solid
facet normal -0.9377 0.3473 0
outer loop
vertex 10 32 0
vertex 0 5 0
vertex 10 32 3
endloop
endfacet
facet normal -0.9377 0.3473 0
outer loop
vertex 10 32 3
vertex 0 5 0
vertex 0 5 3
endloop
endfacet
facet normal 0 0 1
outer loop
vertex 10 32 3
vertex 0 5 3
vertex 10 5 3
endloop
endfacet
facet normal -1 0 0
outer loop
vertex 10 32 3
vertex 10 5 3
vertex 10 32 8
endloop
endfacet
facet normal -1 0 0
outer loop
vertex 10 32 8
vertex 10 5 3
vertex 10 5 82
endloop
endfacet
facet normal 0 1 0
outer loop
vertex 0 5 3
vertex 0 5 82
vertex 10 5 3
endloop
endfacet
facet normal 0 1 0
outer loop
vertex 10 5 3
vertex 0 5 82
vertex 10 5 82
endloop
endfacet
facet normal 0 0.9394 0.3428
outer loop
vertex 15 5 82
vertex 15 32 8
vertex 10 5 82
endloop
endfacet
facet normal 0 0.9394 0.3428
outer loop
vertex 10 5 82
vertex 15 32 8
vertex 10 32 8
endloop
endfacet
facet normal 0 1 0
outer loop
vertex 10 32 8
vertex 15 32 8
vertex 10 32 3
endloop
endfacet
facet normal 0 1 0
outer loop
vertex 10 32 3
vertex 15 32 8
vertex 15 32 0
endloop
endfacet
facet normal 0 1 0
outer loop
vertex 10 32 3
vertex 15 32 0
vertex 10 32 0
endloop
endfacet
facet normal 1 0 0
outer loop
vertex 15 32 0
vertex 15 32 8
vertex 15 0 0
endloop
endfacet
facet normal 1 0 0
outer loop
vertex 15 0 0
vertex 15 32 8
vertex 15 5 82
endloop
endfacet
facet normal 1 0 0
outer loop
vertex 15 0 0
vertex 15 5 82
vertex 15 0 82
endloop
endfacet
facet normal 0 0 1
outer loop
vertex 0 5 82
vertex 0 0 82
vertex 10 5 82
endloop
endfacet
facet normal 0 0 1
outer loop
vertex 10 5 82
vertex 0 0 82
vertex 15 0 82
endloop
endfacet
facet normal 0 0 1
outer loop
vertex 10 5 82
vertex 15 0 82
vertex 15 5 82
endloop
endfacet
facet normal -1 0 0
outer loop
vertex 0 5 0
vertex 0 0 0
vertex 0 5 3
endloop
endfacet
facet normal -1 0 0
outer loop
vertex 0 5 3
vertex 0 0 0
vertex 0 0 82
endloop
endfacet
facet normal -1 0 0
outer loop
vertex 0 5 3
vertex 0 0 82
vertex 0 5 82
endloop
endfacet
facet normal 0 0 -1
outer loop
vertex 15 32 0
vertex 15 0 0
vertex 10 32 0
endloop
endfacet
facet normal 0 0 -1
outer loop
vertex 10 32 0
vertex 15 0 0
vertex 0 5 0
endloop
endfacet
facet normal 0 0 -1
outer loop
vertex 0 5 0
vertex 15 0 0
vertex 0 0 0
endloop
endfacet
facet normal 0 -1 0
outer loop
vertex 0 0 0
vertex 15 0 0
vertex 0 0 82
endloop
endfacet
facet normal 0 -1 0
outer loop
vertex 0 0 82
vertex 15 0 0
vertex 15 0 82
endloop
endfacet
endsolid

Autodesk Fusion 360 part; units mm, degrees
sketch "Sketch1" plane through (0, 0, 0) normal (0, 1, 0) x (1, 0, 0)
  line L0 (0, 0) -> (15, 0)
  line L1 (15, 0) -> (15, -80)
  line L2 (15, -80) -> (0, -80)
  line L3 (0, -80) -> (0, 0)
  dimension "d4" = 15
  dimension "d5" = 80
extrude "Extrude1" add sketch "Sketch1" along normal blind 5
sketch "Sketch3" plane through (0, 5, 0) normal (0, 1, 0) x (-1, 0, 0)
  line L0 (0, 80) -> (-15, 80)
  line L1 (-15, 80) -> (-15, 0)
  line L2 (-15, 0) -> (0, 0)
  line L3 (0, 0) -> (0, 80)
  line L4 (-15, 0) -> (-10, 0)
  line L5 (-10, 0) -> (-10, 8)
  line L6 (-10, 8) -> (-15, 8)
  line L7 (-15, 8) -> (-15, 0)
  dimension "d10" = 5
  dimension "d11" = 8
extrude "Extrude2" add sketch "Sketch3" along normal blind 35 contours L1 L2 L4 L5 L6 L7
sketch "Sketch4" plane through (15, 0, 0) normal (1, 0, 0) x (0, 1, 0)
  line L0 (0, 80) -> (0, 0)
  line L1 (0, 0) -> (40, 0)
  line L2 (40, 0) -> (40, 8)
  line L3 (40, 8) -> (5, 8)
  line L4 (5, 8) -> (5, 80)
  line L5 (5, 80) -> (0, 80)
  line L6 (5, 80) -> (40, 8)
  line L7 (40, 8) -> (5, 8)
  line L8 (5, 8) -> (5, 80)
extrude "Extrude4" add 1 faces at (10, 1.6667, 80) along direction (0, 0, 1) blind 2
extrude "Extrude6" cut 1 faces at (13.3333, 40, 5.3333) along direction (0, -1, 0) blind 8
sketch "Sketch6" plane through (15, 0, 0) normal (1, 0, 0) x (0, 1, 0)
  line L0 (32, 0) -> (32, 8)
  line L1 (32, 8) -> (5, 8)
  line L2 (5, 8) -> (5, 82)
  line L3 (5, 82) -> (0, 82)
  line L4 (0, 82) -> (0, 0)
  line L5 (0, 0) -> (32, 0)
  line L6 (5, 82) -> (5, 8)
  line L7 (5, 8) -> (32, 8)
  line L8 (32, 8) -> (5, 82)
extrude "Extrude7" add sketch "Sketch6" against normal blind 5 contours L1 L2 L6 L7 L8
sketch "Sketch7" plane through (0, 0, 0) normal (0, 0, -1) x (1, 0, 0)
  line L0 (10, -32) -> (15, -32)
  line L1 (15, -32) -> (15, 0)
  line L2 (15, 0) -> (0, 0)
  line L3 (0, 0) -> (0, -5)
  line L4 (0, -5) -> (10, -5)
  line L5 (10, -5) -> (10, -32)
  line L6 (10, -32) -> (10, -5)
  line L7 (10, -5) -> (0, -5)
  line L8 (0, -5) -> (10, -32)
extrude "Extrude8" add sketch "Sketch7" against normal blind 3 contours L4 L5 L6 L7 L8
